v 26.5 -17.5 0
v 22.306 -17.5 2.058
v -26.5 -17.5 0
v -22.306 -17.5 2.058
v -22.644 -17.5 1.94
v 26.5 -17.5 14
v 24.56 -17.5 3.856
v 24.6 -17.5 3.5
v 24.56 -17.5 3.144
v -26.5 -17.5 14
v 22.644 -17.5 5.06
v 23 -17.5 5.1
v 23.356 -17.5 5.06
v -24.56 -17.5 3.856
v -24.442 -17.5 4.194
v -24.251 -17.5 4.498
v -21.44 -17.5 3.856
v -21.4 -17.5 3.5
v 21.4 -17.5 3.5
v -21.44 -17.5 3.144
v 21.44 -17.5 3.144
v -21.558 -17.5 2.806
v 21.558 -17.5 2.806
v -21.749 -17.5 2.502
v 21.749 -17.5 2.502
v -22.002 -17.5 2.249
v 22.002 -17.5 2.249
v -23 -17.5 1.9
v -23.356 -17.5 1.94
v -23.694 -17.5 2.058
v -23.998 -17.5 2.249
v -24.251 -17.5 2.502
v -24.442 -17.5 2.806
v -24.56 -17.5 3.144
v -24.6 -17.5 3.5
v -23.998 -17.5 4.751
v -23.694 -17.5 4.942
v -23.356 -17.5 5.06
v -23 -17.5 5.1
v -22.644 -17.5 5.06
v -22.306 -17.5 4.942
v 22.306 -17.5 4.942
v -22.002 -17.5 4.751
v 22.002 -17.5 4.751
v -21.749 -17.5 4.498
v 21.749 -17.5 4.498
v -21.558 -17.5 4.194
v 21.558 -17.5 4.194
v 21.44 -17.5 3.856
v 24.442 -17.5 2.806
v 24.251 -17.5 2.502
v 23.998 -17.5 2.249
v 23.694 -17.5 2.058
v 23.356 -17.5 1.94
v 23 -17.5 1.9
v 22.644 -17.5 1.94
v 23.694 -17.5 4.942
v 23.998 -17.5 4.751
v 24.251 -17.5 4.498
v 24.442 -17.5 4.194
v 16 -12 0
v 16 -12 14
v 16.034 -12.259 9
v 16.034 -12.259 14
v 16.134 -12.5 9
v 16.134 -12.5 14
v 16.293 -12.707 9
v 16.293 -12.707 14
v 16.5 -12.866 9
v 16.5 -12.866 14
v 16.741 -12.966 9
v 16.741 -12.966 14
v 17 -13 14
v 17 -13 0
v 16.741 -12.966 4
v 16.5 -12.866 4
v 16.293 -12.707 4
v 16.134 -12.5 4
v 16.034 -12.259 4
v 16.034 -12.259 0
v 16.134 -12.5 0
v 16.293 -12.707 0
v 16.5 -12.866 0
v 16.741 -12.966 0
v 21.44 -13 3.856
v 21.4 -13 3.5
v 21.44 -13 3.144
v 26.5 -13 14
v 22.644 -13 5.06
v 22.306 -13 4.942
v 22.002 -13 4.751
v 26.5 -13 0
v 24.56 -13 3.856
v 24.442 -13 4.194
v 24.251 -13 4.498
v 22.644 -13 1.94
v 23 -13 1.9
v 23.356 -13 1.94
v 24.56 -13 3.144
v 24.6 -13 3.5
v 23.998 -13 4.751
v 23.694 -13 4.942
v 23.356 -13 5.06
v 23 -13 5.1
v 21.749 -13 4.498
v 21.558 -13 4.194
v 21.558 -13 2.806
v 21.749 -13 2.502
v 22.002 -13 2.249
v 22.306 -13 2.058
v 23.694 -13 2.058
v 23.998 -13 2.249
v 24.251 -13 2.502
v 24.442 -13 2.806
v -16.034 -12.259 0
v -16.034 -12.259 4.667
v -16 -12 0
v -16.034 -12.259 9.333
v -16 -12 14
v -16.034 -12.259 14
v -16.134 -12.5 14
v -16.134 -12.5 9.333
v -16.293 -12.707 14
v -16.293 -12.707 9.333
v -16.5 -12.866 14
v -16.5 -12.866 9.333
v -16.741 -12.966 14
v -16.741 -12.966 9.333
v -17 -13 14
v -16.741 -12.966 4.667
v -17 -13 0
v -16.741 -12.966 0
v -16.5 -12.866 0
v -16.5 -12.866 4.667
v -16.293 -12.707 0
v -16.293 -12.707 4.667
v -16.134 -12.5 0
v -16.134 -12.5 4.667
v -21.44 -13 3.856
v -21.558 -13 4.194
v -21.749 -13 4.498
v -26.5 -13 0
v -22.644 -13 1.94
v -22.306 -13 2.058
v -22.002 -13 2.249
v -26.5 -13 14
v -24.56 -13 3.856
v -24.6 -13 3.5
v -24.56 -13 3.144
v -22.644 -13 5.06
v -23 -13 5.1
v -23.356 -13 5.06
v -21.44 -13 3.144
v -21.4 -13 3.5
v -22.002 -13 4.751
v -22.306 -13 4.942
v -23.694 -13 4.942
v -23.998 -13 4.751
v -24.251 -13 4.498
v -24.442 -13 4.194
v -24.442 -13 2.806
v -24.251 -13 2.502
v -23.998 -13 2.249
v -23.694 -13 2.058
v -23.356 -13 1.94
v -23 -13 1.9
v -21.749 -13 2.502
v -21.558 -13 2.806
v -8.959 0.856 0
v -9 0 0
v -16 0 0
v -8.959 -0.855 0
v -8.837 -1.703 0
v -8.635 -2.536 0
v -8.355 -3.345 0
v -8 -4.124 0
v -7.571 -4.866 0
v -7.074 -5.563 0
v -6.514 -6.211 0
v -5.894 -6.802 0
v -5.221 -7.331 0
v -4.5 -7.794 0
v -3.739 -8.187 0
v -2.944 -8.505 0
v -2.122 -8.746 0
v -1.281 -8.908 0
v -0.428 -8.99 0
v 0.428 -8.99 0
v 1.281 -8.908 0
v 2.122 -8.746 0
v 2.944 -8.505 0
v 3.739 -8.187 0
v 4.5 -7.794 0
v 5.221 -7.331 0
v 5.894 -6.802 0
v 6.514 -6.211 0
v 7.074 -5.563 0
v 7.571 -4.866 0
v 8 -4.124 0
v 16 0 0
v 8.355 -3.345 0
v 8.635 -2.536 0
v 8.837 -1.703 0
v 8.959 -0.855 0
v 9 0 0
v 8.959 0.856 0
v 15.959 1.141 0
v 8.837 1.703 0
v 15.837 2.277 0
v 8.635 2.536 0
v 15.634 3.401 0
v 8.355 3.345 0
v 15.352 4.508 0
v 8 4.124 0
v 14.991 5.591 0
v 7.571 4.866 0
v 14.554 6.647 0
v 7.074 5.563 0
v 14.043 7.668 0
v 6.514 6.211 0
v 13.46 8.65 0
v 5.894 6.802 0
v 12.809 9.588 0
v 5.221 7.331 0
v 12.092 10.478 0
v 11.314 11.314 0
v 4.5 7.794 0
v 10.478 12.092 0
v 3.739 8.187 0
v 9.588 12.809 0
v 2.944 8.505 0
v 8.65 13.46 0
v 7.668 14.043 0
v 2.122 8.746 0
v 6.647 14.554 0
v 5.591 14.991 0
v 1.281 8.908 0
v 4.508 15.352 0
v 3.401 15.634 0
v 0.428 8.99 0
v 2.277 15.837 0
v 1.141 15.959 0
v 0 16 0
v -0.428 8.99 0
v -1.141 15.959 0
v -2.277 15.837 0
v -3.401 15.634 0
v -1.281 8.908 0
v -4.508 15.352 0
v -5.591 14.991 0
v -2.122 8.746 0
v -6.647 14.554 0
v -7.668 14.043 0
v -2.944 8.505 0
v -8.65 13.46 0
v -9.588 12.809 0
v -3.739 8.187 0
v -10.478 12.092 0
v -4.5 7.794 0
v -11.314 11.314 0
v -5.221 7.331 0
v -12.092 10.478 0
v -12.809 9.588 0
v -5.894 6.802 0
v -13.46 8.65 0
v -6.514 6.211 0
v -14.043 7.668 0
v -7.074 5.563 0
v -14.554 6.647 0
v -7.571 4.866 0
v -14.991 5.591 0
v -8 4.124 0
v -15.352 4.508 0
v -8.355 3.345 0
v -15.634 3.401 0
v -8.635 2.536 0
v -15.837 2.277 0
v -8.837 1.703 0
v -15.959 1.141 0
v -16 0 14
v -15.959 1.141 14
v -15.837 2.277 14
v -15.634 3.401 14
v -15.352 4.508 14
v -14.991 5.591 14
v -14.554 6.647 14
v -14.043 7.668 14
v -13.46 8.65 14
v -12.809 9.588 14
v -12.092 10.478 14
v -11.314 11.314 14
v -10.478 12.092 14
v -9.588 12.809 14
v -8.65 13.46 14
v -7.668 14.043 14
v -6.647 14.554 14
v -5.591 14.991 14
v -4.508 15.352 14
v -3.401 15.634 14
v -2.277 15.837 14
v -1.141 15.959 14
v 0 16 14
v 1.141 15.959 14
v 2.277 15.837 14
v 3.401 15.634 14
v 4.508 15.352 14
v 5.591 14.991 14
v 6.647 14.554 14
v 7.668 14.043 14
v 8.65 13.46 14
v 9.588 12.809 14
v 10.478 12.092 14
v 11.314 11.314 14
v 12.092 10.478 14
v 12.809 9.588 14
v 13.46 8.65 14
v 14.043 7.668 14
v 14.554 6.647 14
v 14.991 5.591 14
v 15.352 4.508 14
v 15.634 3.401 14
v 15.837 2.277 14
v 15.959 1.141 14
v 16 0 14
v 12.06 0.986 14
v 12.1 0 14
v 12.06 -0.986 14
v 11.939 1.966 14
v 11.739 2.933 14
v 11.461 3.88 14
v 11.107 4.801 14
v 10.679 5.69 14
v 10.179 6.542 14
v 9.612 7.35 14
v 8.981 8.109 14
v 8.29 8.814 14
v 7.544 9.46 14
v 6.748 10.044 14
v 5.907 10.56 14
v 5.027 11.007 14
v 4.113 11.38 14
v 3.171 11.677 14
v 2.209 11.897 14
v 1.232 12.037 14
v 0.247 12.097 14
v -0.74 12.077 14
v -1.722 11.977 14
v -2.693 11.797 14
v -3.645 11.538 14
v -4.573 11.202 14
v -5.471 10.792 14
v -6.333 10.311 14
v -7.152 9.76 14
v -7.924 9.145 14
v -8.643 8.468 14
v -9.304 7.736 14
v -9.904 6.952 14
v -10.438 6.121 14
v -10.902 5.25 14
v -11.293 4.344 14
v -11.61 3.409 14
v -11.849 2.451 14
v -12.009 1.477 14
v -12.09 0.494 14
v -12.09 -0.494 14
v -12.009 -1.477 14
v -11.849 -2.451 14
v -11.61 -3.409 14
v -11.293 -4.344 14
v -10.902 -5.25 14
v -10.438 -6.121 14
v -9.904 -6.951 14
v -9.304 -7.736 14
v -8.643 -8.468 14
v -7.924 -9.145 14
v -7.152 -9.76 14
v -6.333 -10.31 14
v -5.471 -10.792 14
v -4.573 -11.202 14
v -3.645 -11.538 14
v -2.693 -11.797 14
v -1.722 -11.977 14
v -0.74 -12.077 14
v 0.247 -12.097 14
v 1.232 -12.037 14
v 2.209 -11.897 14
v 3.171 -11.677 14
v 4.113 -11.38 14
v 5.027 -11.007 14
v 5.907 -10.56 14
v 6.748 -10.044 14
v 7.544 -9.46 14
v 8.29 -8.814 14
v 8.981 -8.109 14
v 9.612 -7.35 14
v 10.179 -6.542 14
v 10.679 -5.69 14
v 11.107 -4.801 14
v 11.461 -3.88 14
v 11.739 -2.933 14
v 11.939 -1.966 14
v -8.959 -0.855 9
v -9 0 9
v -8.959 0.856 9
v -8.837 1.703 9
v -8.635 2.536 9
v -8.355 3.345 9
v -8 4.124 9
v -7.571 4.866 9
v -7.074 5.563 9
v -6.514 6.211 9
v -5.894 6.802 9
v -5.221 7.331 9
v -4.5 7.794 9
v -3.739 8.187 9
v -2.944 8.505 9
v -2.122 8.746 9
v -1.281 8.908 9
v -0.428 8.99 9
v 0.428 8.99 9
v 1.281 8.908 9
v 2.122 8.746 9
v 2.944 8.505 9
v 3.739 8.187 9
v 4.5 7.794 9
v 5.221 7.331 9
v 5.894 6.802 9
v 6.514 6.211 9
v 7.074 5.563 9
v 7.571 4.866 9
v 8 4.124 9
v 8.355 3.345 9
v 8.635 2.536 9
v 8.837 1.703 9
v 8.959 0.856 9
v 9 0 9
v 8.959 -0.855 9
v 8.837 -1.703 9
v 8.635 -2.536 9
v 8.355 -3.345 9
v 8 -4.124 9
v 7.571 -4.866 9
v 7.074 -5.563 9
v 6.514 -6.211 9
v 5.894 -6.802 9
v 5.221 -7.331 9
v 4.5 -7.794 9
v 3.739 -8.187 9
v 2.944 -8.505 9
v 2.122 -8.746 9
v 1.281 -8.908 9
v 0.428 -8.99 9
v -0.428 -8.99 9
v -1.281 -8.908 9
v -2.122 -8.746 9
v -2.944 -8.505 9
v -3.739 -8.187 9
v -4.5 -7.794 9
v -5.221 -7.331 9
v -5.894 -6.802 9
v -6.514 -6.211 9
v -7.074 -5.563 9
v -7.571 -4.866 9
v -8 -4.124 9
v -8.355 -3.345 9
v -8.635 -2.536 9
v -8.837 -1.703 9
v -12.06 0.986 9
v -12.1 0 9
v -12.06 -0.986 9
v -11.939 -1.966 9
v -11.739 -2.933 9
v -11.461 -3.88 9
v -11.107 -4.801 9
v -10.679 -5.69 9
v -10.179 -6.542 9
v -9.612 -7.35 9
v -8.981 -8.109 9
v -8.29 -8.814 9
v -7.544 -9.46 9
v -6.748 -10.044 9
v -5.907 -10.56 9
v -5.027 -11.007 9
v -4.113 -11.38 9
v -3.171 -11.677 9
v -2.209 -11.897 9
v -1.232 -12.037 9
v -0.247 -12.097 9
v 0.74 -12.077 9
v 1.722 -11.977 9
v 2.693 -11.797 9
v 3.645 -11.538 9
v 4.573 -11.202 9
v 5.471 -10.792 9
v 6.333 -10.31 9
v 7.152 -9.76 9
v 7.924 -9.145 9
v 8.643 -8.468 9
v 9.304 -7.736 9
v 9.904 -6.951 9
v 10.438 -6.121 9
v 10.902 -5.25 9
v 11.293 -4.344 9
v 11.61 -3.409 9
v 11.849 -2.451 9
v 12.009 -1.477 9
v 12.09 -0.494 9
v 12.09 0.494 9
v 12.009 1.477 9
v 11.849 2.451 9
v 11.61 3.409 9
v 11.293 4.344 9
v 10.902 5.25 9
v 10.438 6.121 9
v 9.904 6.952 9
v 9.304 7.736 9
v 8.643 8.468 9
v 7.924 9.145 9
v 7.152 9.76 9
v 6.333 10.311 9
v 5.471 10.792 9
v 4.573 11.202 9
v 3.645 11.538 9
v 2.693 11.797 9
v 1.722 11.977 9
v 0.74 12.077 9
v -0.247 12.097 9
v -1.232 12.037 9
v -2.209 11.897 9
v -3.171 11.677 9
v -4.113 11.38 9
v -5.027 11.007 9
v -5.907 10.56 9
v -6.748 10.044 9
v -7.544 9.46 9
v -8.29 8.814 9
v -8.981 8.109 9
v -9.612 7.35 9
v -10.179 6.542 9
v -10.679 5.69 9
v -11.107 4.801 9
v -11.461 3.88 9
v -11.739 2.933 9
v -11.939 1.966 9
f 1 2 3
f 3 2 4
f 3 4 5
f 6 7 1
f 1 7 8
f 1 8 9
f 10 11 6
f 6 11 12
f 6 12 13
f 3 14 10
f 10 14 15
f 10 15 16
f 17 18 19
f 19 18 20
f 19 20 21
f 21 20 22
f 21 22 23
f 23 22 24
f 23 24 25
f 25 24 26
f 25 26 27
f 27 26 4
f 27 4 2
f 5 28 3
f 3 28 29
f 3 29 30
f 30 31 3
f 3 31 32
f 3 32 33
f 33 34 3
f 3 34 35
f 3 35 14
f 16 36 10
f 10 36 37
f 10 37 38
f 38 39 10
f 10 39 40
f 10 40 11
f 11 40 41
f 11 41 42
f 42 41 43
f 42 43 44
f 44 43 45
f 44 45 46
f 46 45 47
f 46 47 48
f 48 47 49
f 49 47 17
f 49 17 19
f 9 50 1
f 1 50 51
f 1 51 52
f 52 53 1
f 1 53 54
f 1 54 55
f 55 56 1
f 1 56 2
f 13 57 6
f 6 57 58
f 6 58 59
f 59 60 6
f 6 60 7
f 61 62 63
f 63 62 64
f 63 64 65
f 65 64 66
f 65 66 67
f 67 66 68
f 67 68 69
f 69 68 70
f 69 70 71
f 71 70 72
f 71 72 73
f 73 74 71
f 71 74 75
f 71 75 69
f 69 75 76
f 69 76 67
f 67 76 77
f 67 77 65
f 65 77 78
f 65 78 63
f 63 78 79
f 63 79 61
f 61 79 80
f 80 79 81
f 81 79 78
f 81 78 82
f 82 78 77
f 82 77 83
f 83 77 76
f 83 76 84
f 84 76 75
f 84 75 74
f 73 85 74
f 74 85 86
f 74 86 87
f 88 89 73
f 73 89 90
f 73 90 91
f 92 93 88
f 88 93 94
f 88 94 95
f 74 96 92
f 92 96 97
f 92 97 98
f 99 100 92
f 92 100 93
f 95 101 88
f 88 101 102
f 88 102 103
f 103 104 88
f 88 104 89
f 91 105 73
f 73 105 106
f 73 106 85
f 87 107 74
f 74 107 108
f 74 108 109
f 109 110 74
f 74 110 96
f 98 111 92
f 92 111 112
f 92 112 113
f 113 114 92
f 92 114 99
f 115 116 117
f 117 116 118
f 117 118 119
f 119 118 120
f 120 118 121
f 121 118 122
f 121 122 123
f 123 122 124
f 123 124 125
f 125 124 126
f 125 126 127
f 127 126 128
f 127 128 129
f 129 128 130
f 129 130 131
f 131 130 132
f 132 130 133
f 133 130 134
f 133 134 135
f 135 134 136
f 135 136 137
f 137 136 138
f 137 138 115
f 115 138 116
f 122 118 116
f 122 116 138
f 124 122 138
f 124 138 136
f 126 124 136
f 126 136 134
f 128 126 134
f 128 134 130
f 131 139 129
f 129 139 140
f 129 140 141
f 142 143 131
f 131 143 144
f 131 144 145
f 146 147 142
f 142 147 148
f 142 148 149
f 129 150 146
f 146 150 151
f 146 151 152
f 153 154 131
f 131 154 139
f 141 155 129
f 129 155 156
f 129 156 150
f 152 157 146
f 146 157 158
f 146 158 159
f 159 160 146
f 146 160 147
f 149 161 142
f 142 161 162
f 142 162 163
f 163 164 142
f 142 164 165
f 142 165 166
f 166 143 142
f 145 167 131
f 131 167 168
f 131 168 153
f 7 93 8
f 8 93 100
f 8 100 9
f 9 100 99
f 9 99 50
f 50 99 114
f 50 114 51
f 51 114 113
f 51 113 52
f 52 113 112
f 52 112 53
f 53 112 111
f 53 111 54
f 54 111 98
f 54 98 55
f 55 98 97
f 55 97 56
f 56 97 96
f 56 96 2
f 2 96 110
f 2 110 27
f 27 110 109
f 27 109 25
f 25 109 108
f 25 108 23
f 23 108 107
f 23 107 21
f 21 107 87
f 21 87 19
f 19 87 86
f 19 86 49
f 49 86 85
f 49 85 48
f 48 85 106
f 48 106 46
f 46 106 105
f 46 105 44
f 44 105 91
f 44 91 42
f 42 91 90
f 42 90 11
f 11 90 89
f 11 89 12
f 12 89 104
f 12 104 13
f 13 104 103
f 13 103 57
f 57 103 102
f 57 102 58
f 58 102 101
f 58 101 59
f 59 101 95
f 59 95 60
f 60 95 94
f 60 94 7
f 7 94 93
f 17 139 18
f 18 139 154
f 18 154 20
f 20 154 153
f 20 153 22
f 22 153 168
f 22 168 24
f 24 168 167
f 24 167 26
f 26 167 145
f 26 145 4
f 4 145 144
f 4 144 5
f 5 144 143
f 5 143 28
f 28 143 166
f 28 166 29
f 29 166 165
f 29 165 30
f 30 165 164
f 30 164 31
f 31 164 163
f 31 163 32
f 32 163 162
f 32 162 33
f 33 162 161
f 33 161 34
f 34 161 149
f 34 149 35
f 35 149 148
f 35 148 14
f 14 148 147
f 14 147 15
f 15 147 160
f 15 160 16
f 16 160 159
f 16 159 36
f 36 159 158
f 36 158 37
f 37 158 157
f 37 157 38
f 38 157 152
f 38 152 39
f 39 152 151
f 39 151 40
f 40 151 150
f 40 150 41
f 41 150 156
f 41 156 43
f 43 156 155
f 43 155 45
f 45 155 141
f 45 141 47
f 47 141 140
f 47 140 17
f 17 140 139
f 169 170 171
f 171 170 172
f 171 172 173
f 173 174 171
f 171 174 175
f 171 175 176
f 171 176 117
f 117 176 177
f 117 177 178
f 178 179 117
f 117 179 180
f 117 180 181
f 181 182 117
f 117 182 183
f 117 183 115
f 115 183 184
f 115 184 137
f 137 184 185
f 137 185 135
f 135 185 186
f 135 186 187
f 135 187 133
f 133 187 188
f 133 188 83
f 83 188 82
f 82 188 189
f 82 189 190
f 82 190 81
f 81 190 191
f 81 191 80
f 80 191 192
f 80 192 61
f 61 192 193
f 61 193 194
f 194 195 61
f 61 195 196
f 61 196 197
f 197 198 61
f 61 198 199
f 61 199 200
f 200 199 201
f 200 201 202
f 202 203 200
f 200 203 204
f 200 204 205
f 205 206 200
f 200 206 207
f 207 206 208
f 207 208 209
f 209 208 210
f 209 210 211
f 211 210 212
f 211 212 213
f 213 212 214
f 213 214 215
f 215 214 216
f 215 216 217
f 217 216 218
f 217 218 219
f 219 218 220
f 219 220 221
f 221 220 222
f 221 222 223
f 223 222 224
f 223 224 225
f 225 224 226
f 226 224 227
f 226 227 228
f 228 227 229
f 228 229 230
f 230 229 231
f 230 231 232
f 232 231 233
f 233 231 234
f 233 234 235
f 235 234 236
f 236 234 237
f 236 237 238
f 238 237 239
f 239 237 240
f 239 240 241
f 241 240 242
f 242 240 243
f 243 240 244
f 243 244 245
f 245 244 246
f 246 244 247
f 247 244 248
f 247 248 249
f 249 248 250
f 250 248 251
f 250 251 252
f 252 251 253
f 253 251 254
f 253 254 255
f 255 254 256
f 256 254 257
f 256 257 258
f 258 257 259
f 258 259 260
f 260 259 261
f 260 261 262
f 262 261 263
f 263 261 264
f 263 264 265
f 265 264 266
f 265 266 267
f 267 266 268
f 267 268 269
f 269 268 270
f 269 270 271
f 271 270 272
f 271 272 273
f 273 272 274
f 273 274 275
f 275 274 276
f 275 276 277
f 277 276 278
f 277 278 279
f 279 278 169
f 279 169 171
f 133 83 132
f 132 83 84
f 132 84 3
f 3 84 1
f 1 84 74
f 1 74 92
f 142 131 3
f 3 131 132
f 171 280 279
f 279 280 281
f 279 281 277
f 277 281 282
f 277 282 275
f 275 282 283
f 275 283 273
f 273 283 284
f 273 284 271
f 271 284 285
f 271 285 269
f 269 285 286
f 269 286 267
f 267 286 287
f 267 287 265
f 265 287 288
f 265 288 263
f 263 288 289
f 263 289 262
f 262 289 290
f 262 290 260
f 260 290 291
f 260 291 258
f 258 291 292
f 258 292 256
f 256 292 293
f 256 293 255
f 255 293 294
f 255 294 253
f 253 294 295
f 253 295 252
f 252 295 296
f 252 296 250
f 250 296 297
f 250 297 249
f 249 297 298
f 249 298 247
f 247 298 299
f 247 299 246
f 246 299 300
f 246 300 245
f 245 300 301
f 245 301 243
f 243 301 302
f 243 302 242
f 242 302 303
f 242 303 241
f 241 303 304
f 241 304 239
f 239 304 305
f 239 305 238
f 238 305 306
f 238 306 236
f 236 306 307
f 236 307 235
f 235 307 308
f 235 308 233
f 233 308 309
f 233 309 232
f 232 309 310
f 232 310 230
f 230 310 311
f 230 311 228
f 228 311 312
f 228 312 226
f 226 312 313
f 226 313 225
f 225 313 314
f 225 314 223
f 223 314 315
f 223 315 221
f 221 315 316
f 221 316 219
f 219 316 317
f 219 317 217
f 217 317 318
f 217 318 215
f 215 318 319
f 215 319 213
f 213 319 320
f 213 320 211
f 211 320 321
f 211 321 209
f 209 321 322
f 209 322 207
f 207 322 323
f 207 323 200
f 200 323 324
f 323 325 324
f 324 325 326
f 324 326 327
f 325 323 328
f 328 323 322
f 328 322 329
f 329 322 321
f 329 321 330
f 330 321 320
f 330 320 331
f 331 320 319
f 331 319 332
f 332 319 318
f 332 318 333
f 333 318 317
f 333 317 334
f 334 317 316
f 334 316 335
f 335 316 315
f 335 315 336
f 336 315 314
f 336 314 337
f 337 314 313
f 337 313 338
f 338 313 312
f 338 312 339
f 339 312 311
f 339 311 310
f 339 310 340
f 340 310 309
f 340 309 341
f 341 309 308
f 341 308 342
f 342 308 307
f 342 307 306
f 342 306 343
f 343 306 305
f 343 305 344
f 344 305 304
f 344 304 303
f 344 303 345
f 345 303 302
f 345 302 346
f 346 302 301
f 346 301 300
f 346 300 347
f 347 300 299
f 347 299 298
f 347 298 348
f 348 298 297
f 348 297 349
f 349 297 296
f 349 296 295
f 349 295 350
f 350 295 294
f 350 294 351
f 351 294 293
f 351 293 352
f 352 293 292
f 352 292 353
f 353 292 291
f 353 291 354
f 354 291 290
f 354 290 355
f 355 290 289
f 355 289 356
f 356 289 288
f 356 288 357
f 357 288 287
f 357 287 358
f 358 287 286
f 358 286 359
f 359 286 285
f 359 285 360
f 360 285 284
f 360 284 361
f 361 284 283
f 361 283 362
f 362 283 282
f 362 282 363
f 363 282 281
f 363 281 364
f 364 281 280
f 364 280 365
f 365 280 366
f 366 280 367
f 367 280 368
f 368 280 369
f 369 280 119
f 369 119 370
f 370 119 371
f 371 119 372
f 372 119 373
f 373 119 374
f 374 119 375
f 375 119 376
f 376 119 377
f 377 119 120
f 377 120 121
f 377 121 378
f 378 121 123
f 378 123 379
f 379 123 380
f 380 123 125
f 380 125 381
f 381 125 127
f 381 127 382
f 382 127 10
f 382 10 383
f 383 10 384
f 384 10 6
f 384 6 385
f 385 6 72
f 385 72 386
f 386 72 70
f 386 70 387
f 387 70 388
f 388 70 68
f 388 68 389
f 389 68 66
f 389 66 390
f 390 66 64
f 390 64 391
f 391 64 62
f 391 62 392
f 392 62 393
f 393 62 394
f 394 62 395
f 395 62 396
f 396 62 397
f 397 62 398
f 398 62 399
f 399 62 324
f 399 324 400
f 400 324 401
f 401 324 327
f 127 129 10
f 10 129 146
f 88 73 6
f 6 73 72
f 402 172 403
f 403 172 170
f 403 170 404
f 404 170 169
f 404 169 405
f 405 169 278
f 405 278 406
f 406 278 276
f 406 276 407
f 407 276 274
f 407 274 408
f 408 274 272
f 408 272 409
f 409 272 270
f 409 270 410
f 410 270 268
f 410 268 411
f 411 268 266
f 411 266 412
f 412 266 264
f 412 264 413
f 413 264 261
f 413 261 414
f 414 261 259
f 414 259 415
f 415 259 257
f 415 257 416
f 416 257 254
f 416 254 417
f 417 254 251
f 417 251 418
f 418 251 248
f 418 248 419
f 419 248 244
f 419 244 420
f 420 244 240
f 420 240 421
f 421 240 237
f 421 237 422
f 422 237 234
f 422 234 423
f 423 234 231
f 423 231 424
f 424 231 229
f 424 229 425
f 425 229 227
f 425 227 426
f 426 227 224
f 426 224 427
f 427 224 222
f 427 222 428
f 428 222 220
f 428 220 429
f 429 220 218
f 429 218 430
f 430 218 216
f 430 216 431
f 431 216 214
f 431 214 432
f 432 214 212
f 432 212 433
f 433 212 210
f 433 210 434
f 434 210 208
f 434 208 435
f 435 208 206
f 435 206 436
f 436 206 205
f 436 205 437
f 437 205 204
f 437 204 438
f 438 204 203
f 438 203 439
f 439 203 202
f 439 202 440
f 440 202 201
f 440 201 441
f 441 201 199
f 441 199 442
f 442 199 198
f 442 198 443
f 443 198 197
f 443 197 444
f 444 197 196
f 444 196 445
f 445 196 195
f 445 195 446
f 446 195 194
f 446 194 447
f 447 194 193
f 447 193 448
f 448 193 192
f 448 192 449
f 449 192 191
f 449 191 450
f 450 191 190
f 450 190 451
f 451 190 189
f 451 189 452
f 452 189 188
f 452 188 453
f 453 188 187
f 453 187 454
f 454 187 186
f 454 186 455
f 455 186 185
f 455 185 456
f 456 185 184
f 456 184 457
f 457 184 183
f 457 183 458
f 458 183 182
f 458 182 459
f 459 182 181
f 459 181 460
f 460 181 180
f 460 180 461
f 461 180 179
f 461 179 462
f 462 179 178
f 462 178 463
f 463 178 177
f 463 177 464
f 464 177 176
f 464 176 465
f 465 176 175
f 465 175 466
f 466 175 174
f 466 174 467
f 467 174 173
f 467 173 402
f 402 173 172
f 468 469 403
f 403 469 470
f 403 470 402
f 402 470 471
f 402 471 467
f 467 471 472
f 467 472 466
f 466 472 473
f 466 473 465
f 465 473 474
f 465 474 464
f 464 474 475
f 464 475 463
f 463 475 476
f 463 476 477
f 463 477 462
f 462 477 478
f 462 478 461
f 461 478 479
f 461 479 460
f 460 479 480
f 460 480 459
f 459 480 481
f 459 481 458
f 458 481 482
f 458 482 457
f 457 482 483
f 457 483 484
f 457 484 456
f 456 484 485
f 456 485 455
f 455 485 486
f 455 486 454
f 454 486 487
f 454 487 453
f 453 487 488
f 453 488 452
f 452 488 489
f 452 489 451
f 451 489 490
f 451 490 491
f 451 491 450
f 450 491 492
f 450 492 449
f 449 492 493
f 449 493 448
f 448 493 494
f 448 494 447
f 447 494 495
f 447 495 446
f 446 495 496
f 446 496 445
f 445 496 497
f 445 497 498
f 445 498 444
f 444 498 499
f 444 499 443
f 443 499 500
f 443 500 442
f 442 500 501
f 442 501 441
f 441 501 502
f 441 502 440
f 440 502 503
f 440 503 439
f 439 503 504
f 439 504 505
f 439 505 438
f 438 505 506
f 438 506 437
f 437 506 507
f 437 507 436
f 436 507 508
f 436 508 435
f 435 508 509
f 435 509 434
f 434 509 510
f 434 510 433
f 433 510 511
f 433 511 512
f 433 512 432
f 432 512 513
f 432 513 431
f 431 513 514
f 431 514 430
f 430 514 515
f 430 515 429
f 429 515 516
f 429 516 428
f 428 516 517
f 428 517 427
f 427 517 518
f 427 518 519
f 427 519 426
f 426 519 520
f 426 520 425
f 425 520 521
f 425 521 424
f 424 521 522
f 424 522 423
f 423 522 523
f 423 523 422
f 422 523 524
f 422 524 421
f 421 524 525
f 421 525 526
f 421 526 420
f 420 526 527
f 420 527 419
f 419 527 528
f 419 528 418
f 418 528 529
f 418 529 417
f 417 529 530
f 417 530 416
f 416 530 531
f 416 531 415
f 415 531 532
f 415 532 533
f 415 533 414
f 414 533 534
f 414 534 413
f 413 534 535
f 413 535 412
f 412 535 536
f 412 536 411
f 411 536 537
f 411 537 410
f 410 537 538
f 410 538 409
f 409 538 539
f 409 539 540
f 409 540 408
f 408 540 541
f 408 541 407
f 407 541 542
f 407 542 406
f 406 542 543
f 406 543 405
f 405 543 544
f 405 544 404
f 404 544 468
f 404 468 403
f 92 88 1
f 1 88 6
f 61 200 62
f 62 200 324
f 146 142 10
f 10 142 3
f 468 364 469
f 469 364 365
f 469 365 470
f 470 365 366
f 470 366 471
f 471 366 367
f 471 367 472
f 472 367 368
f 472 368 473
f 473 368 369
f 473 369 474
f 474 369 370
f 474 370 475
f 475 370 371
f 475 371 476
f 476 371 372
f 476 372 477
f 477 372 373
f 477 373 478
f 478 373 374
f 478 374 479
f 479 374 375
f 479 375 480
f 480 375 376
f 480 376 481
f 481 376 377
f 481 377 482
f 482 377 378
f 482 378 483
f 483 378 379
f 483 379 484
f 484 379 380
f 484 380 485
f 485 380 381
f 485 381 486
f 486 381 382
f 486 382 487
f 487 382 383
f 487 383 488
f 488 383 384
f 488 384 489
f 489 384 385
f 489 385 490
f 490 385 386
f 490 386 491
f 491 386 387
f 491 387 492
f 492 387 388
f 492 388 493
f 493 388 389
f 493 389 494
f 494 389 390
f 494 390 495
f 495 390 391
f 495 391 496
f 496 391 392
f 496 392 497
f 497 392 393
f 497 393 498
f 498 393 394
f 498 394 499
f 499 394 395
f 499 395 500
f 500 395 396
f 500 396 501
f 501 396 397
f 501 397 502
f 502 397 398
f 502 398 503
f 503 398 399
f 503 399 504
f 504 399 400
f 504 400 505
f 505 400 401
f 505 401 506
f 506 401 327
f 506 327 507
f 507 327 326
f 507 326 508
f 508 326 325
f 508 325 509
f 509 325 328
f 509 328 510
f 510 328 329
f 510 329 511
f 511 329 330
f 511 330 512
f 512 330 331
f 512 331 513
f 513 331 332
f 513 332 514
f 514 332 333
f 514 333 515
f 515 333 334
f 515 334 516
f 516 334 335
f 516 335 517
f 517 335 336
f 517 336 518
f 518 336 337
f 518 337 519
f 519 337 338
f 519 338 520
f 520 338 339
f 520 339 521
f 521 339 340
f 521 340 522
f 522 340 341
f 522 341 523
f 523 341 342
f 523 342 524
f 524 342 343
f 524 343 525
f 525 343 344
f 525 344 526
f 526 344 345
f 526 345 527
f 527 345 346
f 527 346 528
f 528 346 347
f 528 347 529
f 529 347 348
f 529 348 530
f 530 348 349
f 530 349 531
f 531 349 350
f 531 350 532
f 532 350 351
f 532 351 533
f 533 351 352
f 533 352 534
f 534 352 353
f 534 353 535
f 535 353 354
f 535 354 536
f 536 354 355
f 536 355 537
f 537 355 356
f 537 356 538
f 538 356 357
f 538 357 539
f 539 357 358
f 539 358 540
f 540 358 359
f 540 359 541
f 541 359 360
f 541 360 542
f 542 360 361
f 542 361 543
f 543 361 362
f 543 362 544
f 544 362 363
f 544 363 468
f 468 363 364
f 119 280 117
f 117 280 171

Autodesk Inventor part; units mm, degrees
ref_plane "YZ Plane" through (0, 0, 0) normal (1, 0, 0) x (0, 1, 0)
ref_plane "XZ Plane" through (0, 0, 0) normal (0, 1, 0) x (-1, 0, 0)
ref_plane "XY Plane" through (0, 0, 0) normal (0, 0, 1) x (1, 0, 0)
sketch "Skizze1" plane through (0, 0, 0) normal (0, 0, 1) x (1, 0, 0)
  line L0 (0, 22.4) -> (0, -22.4) projected
  line L1 (-22.4, 0) -> (22.4, 0) projected
  line L2 (-16, 16) -> (16, 16)
  line L3 (16, 16) -> (16, -16)
  line L4 (16, -16) -> (-16, -16)
  line L5 (-16, -16) -> (-16, 16)
  circle A0 centre (0, 0) radius 12.1
  dimension "d0" = 32
  dimension "d1" = 32
  dimension "d2" = 24.2
extrude "Extrusion1" add sketch "Skizze1" along normal blind 14 contours L2 L3 L1 A0 L0 | L0 A0 L1 L5 L2 | L1 L3 L4 L0 A0 | A0 L0 L4 L5 L1
sketch "Skizze2" plane through (16, -16, 0) normal (1, 0, 0) x (0, 0, -1)
  line L0 (-14, 32) -> (-14, 0) projected
  line L1 (0, 32) -> (0, 0) projected
  line L2 (-14, 0) -> (0, 0)
  line L3 (0, 0) -> (0, 3)
  line L4 (0, 3) -> (-14, 3)
  line L5 (-14, 3) -> (-14, 0)
  point P0 (0, 16)
  point P1 (-14, 3)
  dimension "d5" = 3
sketch "Skizze3" plane through (-16, -16, 0) normal (-1, 0, 0) x (0, 0, 1)
  line L0 (14, 32) -> (14, 0) projected
  line L1 (0, 32) -> (0, 0) projected
  line L2 (14, 0) -> (0, 0)
  line L3 (0, 0) -> (0, 3)
  line L4 (0, 3) -> (14, 3)
  line L5 (14, 3) -> (14, 0)
  point P0 (0, 16)
  point P1 (14, 3)
  dimension "d6" = 3
extrude "Extrusion2" add sketch "Skizze3" along normal blind 10.5
extrude "Extrusion3" add sketch "Skizze2" along normal blind 10.5
sketch "Skizze4" plane through (0, 0, 0) normal (0, 0, -1) x (-1, 0, 0)
  circle A0 centre (0, 0) radius 12.1
  circle A1 centre (0, 0) radius 12.1 projected
  circle A2 centre (0, 0) radius 9
  dimension "d11" = 24.2
  dimension "d12" = 18
extrude "Extrusion4" add sketch "Skizze4" against normal blind 9
fillet "Rundung1" radius 16 2 edges at (16, 16, 7) (-16, 16, 7)
sketch "Skizze5" plane through (16, -13, 14) normal (0, 1, 0) x (1, 0, 0)
  circle A0 centre (-39, 10.5) radius 1.6
  line L0 (-32, 14) -> (-42.5, 14) projected
  line L1 (-42.5, 0) -> (-42.5, 14) projected
  circle A1 centre (7, 10.5) radius 1.6
  line L2 (0, 14) -> (10.5, 14) projected
  line L3 (10.5, 14) -> (10.5, 0) projected
  point P0 (-16, 14)
  dimension "d16" = 3.2
  dimension "d17" = 3.5
  dimension "d18" = 3.5
  dimension "d19" = 3.2
  dimension "d20" = 3.5
  dimension "d21" = 3.5
extrude "Extrusion5" cut sketch "Skizze5" against normal up to surface (3 mm away)
fillet "Rundung2" radius 1 2 edges at (-16, -13, 7) (16, -13, 7)
sketch "Skizze6" plane through (-26.5, -16, 0) normal (0, -1, 0) x (1, 0, 0)
  line L0 (53, 14) -> (0, 14) projected
  line L1 (53, 14) -> (53, 0) projected
  line L2 (0, 14) -> (53, 14)
  line L3 (53, 14) -> (53, 0)
  line L4 (53, 0) -> (0, 0)
  line L5 (0, 0) -> (0, 14)
  circle A0 centre (3.5, 3.5) radius 1.6 projected
  circle A1 centre (3.5, 3.5) radius 1.6
  circle A2 centre (49.5, 3.5) radius 1.6 projected
  circle A3 centre (49.5, 3.5) radius 1.6
  point P0 (26.5, 0)
  dimension "d25" = 3.2
  dimension "d26" = 3.2
extrude "Extrusion6" add sketch "Skizze6" along normal blind 1.5
properties part number "_3D-Druck"
